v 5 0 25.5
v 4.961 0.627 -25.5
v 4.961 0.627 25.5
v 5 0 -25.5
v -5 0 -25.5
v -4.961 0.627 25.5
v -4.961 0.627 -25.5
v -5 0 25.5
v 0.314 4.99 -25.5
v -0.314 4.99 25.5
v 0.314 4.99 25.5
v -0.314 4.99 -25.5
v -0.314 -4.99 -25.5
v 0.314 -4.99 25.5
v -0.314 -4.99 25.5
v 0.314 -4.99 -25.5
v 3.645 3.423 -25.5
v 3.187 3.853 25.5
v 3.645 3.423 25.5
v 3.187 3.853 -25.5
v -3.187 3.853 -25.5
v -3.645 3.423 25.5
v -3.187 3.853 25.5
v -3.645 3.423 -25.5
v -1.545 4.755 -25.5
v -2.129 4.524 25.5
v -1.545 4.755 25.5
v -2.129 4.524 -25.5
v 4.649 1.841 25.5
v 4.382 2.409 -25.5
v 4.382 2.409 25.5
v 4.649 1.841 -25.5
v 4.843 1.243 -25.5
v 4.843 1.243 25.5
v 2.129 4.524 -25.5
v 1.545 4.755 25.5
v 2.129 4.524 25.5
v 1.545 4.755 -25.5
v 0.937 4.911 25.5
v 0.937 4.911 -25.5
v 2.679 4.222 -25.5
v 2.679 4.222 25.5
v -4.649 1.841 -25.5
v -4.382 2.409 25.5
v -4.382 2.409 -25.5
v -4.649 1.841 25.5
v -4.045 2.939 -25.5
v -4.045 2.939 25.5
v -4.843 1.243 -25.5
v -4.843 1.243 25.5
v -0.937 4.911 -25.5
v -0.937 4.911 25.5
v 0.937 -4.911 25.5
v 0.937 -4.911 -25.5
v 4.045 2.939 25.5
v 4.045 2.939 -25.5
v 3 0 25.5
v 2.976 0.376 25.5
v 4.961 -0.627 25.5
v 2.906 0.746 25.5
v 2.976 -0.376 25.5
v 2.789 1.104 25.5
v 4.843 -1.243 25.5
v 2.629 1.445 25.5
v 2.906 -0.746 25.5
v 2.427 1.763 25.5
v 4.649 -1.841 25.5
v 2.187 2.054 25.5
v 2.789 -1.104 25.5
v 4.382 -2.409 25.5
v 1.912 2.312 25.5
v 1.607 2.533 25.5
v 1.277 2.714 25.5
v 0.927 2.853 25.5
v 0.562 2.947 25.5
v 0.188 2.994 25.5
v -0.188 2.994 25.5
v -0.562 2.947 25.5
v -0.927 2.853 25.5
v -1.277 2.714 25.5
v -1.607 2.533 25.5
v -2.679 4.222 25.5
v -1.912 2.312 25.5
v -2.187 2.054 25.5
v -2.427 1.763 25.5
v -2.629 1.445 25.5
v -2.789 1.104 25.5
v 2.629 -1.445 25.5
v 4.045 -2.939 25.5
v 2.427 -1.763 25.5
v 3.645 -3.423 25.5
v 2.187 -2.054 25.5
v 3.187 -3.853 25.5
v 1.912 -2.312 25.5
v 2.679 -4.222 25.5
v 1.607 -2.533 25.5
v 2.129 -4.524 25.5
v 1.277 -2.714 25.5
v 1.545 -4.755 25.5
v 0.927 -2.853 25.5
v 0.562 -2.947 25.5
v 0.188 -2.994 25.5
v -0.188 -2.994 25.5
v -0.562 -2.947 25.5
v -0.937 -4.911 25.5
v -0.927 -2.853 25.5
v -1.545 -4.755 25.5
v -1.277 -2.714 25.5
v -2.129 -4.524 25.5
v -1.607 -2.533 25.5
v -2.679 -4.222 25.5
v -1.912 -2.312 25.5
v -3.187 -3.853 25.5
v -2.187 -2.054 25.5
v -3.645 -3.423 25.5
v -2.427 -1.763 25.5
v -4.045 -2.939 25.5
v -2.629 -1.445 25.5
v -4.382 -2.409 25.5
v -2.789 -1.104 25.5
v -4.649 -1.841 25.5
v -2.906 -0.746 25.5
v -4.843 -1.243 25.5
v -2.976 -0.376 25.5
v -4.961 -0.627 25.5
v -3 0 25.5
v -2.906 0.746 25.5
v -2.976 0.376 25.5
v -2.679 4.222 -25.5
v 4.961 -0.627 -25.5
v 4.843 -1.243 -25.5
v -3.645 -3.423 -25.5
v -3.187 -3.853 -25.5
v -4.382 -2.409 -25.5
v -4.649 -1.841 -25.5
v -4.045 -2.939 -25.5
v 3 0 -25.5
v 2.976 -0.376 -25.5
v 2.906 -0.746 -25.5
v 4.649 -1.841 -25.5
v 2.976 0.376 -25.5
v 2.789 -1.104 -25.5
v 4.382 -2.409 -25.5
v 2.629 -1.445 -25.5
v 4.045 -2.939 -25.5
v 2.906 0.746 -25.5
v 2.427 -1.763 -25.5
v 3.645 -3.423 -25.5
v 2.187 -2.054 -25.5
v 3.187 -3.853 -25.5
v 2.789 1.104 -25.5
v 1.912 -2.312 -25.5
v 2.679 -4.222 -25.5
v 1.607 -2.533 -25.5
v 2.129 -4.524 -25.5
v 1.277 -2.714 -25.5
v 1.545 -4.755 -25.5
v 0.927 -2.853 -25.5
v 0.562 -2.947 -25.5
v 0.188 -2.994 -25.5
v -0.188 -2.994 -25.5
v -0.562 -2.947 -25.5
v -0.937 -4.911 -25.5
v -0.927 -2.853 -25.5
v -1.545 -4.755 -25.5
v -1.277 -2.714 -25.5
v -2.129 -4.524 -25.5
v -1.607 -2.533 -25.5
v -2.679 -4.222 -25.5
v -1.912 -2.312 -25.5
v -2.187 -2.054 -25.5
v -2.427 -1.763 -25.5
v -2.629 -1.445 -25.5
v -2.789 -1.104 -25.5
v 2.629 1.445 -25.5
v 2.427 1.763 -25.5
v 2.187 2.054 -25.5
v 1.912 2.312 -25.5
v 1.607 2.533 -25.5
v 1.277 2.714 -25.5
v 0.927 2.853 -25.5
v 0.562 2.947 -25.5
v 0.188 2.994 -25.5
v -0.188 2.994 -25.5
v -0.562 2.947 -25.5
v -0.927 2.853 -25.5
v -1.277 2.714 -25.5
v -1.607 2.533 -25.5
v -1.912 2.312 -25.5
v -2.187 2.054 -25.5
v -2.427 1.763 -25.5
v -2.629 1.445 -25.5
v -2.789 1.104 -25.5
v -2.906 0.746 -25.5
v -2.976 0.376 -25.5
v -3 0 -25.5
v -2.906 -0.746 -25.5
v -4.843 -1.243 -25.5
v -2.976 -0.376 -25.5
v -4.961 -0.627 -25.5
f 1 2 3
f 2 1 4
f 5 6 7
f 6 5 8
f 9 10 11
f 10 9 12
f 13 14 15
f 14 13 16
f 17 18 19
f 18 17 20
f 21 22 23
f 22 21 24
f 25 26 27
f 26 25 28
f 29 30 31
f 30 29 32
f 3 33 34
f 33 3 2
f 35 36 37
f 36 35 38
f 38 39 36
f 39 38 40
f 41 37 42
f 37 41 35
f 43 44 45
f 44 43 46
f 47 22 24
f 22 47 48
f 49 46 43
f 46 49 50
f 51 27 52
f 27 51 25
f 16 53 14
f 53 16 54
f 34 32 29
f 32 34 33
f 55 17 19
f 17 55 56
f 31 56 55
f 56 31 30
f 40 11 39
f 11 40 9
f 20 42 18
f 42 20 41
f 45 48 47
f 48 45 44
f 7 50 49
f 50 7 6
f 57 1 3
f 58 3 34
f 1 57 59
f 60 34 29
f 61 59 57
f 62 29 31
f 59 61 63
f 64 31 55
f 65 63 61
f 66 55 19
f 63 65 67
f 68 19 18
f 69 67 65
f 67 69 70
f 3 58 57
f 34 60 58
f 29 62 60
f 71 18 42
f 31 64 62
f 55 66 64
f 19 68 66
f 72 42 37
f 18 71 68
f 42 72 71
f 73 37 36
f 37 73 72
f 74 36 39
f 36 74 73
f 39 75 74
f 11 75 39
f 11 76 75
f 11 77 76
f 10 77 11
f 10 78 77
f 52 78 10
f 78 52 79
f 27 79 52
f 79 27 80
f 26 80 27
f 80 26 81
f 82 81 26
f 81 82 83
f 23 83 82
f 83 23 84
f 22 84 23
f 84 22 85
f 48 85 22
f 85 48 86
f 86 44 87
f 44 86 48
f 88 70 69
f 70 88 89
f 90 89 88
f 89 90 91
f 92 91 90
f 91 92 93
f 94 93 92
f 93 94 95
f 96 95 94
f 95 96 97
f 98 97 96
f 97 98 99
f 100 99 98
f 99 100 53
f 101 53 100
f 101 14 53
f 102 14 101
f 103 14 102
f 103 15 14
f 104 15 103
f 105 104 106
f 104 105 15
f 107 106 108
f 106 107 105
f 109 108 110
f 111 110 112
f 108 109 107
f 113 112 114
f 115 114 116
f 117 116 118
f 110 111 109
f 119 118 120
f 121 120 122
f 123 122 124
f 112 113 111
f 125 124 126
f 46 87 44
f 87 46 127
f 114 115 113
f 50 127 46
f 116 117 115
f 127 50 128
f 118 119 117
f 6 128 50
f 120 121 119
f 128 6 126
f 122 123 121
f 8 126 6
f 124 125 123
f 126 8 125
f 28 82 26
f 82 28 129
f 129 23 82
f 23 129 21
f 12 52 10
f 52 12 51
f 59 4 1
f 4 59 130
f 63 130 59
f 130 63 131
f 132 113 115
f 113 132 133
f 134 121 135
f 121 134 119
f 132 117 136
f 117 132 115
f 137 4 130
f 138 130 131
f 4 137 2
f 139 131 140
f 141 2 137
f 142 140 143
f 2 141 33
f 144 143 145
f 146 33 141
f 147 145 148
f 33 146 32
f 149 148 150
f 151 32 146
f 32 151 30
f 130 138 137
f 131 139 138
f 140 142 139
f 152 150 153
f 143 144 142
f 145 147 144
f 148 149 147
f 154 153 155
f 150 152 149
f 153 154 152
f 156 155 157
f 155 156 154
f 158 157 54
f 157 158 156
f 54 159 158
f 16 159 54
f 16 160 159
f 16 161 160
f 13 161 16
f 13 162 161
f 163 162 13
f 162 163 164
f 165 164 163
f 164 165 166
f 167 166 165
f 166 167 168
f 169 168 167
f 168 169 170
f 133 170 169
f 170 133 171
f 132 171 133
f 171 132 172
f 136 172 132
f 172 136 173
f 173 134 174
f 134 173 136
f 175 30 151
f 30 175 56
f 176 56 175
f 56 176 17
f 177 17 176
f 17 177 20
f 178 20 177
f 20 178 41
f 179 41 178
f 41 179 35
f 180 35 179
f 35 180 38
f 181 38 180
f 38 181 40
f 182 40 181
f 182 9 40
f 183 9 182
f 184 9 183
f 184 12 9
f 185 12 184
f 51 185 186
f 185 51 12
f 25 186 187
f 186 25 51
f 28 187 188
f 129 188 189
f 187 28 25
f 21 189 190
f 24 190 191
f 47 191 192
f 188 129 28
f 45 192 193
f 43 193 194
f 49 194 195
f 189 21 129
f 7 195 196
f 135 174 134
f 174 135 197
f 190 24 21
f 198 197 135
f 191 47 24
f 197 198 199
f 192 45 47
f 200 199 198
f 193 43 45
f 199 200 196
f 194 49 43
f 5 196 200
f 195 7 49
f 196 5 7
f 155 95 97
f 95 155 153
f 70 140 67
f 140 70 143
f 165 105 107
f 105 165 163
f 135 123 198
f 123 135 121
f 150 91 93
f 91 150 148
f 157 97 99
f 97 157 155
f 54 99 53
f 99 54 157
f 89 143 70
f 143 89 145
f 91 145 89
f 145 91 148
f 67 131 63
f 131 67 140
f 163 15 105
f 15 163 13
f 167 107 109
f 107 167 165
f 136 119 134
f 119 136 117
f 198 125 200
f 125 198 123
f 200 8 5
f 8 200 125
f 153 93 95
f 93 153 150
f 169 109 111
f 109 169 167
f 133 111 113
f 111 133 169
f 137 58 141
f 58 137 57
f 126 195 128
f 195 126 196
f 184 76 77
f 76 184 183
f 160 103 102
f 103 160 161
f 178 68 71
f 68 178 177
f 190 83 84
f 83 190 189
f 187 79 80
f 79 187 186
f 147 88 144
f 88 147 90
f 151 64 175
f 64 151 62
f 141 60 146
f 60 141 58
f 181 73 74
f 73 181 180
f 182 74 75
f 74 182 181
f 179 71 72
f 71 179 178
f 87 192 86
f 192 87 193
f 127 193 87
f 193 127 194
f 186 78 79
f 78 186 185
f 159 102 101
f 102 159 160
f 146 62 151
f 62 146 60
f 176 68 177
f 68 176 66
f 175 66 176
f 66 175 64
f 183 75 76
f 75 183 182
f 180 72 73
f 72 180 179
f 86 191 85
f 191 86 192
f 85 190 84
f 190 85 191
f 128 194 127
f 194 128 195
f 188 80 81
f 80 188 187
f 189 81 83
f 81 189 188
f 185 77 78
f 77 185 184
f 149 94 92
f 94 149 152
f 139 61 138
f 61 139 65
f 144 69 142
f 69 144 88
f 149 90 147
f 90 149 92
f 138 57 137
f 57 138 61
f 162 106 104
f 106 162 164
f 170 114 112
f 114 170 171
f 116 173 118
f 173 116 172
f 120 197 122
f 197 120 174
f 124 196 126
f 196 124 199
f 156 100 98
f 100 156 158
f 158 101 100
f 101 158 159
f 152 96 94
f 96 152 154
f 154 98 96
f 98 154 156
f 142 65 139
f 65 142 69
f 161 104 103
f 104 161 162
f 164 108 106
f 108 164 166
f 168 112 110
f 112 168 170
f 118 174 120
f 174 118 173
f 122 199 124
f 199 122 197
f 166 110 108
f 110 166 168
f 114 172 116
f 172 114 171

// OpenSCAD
$fn = 50;


difference() {
	union() {
		translate(v = [0, 0, -25.5000000000]) {
			cylinder(h = 51, r = 5.0000000000);
		}
	}
	union() {
		translate(v = [0, 0, -100.0000000000]) {
			cylinder(h = 200, r = 3);
		}
	}
}
